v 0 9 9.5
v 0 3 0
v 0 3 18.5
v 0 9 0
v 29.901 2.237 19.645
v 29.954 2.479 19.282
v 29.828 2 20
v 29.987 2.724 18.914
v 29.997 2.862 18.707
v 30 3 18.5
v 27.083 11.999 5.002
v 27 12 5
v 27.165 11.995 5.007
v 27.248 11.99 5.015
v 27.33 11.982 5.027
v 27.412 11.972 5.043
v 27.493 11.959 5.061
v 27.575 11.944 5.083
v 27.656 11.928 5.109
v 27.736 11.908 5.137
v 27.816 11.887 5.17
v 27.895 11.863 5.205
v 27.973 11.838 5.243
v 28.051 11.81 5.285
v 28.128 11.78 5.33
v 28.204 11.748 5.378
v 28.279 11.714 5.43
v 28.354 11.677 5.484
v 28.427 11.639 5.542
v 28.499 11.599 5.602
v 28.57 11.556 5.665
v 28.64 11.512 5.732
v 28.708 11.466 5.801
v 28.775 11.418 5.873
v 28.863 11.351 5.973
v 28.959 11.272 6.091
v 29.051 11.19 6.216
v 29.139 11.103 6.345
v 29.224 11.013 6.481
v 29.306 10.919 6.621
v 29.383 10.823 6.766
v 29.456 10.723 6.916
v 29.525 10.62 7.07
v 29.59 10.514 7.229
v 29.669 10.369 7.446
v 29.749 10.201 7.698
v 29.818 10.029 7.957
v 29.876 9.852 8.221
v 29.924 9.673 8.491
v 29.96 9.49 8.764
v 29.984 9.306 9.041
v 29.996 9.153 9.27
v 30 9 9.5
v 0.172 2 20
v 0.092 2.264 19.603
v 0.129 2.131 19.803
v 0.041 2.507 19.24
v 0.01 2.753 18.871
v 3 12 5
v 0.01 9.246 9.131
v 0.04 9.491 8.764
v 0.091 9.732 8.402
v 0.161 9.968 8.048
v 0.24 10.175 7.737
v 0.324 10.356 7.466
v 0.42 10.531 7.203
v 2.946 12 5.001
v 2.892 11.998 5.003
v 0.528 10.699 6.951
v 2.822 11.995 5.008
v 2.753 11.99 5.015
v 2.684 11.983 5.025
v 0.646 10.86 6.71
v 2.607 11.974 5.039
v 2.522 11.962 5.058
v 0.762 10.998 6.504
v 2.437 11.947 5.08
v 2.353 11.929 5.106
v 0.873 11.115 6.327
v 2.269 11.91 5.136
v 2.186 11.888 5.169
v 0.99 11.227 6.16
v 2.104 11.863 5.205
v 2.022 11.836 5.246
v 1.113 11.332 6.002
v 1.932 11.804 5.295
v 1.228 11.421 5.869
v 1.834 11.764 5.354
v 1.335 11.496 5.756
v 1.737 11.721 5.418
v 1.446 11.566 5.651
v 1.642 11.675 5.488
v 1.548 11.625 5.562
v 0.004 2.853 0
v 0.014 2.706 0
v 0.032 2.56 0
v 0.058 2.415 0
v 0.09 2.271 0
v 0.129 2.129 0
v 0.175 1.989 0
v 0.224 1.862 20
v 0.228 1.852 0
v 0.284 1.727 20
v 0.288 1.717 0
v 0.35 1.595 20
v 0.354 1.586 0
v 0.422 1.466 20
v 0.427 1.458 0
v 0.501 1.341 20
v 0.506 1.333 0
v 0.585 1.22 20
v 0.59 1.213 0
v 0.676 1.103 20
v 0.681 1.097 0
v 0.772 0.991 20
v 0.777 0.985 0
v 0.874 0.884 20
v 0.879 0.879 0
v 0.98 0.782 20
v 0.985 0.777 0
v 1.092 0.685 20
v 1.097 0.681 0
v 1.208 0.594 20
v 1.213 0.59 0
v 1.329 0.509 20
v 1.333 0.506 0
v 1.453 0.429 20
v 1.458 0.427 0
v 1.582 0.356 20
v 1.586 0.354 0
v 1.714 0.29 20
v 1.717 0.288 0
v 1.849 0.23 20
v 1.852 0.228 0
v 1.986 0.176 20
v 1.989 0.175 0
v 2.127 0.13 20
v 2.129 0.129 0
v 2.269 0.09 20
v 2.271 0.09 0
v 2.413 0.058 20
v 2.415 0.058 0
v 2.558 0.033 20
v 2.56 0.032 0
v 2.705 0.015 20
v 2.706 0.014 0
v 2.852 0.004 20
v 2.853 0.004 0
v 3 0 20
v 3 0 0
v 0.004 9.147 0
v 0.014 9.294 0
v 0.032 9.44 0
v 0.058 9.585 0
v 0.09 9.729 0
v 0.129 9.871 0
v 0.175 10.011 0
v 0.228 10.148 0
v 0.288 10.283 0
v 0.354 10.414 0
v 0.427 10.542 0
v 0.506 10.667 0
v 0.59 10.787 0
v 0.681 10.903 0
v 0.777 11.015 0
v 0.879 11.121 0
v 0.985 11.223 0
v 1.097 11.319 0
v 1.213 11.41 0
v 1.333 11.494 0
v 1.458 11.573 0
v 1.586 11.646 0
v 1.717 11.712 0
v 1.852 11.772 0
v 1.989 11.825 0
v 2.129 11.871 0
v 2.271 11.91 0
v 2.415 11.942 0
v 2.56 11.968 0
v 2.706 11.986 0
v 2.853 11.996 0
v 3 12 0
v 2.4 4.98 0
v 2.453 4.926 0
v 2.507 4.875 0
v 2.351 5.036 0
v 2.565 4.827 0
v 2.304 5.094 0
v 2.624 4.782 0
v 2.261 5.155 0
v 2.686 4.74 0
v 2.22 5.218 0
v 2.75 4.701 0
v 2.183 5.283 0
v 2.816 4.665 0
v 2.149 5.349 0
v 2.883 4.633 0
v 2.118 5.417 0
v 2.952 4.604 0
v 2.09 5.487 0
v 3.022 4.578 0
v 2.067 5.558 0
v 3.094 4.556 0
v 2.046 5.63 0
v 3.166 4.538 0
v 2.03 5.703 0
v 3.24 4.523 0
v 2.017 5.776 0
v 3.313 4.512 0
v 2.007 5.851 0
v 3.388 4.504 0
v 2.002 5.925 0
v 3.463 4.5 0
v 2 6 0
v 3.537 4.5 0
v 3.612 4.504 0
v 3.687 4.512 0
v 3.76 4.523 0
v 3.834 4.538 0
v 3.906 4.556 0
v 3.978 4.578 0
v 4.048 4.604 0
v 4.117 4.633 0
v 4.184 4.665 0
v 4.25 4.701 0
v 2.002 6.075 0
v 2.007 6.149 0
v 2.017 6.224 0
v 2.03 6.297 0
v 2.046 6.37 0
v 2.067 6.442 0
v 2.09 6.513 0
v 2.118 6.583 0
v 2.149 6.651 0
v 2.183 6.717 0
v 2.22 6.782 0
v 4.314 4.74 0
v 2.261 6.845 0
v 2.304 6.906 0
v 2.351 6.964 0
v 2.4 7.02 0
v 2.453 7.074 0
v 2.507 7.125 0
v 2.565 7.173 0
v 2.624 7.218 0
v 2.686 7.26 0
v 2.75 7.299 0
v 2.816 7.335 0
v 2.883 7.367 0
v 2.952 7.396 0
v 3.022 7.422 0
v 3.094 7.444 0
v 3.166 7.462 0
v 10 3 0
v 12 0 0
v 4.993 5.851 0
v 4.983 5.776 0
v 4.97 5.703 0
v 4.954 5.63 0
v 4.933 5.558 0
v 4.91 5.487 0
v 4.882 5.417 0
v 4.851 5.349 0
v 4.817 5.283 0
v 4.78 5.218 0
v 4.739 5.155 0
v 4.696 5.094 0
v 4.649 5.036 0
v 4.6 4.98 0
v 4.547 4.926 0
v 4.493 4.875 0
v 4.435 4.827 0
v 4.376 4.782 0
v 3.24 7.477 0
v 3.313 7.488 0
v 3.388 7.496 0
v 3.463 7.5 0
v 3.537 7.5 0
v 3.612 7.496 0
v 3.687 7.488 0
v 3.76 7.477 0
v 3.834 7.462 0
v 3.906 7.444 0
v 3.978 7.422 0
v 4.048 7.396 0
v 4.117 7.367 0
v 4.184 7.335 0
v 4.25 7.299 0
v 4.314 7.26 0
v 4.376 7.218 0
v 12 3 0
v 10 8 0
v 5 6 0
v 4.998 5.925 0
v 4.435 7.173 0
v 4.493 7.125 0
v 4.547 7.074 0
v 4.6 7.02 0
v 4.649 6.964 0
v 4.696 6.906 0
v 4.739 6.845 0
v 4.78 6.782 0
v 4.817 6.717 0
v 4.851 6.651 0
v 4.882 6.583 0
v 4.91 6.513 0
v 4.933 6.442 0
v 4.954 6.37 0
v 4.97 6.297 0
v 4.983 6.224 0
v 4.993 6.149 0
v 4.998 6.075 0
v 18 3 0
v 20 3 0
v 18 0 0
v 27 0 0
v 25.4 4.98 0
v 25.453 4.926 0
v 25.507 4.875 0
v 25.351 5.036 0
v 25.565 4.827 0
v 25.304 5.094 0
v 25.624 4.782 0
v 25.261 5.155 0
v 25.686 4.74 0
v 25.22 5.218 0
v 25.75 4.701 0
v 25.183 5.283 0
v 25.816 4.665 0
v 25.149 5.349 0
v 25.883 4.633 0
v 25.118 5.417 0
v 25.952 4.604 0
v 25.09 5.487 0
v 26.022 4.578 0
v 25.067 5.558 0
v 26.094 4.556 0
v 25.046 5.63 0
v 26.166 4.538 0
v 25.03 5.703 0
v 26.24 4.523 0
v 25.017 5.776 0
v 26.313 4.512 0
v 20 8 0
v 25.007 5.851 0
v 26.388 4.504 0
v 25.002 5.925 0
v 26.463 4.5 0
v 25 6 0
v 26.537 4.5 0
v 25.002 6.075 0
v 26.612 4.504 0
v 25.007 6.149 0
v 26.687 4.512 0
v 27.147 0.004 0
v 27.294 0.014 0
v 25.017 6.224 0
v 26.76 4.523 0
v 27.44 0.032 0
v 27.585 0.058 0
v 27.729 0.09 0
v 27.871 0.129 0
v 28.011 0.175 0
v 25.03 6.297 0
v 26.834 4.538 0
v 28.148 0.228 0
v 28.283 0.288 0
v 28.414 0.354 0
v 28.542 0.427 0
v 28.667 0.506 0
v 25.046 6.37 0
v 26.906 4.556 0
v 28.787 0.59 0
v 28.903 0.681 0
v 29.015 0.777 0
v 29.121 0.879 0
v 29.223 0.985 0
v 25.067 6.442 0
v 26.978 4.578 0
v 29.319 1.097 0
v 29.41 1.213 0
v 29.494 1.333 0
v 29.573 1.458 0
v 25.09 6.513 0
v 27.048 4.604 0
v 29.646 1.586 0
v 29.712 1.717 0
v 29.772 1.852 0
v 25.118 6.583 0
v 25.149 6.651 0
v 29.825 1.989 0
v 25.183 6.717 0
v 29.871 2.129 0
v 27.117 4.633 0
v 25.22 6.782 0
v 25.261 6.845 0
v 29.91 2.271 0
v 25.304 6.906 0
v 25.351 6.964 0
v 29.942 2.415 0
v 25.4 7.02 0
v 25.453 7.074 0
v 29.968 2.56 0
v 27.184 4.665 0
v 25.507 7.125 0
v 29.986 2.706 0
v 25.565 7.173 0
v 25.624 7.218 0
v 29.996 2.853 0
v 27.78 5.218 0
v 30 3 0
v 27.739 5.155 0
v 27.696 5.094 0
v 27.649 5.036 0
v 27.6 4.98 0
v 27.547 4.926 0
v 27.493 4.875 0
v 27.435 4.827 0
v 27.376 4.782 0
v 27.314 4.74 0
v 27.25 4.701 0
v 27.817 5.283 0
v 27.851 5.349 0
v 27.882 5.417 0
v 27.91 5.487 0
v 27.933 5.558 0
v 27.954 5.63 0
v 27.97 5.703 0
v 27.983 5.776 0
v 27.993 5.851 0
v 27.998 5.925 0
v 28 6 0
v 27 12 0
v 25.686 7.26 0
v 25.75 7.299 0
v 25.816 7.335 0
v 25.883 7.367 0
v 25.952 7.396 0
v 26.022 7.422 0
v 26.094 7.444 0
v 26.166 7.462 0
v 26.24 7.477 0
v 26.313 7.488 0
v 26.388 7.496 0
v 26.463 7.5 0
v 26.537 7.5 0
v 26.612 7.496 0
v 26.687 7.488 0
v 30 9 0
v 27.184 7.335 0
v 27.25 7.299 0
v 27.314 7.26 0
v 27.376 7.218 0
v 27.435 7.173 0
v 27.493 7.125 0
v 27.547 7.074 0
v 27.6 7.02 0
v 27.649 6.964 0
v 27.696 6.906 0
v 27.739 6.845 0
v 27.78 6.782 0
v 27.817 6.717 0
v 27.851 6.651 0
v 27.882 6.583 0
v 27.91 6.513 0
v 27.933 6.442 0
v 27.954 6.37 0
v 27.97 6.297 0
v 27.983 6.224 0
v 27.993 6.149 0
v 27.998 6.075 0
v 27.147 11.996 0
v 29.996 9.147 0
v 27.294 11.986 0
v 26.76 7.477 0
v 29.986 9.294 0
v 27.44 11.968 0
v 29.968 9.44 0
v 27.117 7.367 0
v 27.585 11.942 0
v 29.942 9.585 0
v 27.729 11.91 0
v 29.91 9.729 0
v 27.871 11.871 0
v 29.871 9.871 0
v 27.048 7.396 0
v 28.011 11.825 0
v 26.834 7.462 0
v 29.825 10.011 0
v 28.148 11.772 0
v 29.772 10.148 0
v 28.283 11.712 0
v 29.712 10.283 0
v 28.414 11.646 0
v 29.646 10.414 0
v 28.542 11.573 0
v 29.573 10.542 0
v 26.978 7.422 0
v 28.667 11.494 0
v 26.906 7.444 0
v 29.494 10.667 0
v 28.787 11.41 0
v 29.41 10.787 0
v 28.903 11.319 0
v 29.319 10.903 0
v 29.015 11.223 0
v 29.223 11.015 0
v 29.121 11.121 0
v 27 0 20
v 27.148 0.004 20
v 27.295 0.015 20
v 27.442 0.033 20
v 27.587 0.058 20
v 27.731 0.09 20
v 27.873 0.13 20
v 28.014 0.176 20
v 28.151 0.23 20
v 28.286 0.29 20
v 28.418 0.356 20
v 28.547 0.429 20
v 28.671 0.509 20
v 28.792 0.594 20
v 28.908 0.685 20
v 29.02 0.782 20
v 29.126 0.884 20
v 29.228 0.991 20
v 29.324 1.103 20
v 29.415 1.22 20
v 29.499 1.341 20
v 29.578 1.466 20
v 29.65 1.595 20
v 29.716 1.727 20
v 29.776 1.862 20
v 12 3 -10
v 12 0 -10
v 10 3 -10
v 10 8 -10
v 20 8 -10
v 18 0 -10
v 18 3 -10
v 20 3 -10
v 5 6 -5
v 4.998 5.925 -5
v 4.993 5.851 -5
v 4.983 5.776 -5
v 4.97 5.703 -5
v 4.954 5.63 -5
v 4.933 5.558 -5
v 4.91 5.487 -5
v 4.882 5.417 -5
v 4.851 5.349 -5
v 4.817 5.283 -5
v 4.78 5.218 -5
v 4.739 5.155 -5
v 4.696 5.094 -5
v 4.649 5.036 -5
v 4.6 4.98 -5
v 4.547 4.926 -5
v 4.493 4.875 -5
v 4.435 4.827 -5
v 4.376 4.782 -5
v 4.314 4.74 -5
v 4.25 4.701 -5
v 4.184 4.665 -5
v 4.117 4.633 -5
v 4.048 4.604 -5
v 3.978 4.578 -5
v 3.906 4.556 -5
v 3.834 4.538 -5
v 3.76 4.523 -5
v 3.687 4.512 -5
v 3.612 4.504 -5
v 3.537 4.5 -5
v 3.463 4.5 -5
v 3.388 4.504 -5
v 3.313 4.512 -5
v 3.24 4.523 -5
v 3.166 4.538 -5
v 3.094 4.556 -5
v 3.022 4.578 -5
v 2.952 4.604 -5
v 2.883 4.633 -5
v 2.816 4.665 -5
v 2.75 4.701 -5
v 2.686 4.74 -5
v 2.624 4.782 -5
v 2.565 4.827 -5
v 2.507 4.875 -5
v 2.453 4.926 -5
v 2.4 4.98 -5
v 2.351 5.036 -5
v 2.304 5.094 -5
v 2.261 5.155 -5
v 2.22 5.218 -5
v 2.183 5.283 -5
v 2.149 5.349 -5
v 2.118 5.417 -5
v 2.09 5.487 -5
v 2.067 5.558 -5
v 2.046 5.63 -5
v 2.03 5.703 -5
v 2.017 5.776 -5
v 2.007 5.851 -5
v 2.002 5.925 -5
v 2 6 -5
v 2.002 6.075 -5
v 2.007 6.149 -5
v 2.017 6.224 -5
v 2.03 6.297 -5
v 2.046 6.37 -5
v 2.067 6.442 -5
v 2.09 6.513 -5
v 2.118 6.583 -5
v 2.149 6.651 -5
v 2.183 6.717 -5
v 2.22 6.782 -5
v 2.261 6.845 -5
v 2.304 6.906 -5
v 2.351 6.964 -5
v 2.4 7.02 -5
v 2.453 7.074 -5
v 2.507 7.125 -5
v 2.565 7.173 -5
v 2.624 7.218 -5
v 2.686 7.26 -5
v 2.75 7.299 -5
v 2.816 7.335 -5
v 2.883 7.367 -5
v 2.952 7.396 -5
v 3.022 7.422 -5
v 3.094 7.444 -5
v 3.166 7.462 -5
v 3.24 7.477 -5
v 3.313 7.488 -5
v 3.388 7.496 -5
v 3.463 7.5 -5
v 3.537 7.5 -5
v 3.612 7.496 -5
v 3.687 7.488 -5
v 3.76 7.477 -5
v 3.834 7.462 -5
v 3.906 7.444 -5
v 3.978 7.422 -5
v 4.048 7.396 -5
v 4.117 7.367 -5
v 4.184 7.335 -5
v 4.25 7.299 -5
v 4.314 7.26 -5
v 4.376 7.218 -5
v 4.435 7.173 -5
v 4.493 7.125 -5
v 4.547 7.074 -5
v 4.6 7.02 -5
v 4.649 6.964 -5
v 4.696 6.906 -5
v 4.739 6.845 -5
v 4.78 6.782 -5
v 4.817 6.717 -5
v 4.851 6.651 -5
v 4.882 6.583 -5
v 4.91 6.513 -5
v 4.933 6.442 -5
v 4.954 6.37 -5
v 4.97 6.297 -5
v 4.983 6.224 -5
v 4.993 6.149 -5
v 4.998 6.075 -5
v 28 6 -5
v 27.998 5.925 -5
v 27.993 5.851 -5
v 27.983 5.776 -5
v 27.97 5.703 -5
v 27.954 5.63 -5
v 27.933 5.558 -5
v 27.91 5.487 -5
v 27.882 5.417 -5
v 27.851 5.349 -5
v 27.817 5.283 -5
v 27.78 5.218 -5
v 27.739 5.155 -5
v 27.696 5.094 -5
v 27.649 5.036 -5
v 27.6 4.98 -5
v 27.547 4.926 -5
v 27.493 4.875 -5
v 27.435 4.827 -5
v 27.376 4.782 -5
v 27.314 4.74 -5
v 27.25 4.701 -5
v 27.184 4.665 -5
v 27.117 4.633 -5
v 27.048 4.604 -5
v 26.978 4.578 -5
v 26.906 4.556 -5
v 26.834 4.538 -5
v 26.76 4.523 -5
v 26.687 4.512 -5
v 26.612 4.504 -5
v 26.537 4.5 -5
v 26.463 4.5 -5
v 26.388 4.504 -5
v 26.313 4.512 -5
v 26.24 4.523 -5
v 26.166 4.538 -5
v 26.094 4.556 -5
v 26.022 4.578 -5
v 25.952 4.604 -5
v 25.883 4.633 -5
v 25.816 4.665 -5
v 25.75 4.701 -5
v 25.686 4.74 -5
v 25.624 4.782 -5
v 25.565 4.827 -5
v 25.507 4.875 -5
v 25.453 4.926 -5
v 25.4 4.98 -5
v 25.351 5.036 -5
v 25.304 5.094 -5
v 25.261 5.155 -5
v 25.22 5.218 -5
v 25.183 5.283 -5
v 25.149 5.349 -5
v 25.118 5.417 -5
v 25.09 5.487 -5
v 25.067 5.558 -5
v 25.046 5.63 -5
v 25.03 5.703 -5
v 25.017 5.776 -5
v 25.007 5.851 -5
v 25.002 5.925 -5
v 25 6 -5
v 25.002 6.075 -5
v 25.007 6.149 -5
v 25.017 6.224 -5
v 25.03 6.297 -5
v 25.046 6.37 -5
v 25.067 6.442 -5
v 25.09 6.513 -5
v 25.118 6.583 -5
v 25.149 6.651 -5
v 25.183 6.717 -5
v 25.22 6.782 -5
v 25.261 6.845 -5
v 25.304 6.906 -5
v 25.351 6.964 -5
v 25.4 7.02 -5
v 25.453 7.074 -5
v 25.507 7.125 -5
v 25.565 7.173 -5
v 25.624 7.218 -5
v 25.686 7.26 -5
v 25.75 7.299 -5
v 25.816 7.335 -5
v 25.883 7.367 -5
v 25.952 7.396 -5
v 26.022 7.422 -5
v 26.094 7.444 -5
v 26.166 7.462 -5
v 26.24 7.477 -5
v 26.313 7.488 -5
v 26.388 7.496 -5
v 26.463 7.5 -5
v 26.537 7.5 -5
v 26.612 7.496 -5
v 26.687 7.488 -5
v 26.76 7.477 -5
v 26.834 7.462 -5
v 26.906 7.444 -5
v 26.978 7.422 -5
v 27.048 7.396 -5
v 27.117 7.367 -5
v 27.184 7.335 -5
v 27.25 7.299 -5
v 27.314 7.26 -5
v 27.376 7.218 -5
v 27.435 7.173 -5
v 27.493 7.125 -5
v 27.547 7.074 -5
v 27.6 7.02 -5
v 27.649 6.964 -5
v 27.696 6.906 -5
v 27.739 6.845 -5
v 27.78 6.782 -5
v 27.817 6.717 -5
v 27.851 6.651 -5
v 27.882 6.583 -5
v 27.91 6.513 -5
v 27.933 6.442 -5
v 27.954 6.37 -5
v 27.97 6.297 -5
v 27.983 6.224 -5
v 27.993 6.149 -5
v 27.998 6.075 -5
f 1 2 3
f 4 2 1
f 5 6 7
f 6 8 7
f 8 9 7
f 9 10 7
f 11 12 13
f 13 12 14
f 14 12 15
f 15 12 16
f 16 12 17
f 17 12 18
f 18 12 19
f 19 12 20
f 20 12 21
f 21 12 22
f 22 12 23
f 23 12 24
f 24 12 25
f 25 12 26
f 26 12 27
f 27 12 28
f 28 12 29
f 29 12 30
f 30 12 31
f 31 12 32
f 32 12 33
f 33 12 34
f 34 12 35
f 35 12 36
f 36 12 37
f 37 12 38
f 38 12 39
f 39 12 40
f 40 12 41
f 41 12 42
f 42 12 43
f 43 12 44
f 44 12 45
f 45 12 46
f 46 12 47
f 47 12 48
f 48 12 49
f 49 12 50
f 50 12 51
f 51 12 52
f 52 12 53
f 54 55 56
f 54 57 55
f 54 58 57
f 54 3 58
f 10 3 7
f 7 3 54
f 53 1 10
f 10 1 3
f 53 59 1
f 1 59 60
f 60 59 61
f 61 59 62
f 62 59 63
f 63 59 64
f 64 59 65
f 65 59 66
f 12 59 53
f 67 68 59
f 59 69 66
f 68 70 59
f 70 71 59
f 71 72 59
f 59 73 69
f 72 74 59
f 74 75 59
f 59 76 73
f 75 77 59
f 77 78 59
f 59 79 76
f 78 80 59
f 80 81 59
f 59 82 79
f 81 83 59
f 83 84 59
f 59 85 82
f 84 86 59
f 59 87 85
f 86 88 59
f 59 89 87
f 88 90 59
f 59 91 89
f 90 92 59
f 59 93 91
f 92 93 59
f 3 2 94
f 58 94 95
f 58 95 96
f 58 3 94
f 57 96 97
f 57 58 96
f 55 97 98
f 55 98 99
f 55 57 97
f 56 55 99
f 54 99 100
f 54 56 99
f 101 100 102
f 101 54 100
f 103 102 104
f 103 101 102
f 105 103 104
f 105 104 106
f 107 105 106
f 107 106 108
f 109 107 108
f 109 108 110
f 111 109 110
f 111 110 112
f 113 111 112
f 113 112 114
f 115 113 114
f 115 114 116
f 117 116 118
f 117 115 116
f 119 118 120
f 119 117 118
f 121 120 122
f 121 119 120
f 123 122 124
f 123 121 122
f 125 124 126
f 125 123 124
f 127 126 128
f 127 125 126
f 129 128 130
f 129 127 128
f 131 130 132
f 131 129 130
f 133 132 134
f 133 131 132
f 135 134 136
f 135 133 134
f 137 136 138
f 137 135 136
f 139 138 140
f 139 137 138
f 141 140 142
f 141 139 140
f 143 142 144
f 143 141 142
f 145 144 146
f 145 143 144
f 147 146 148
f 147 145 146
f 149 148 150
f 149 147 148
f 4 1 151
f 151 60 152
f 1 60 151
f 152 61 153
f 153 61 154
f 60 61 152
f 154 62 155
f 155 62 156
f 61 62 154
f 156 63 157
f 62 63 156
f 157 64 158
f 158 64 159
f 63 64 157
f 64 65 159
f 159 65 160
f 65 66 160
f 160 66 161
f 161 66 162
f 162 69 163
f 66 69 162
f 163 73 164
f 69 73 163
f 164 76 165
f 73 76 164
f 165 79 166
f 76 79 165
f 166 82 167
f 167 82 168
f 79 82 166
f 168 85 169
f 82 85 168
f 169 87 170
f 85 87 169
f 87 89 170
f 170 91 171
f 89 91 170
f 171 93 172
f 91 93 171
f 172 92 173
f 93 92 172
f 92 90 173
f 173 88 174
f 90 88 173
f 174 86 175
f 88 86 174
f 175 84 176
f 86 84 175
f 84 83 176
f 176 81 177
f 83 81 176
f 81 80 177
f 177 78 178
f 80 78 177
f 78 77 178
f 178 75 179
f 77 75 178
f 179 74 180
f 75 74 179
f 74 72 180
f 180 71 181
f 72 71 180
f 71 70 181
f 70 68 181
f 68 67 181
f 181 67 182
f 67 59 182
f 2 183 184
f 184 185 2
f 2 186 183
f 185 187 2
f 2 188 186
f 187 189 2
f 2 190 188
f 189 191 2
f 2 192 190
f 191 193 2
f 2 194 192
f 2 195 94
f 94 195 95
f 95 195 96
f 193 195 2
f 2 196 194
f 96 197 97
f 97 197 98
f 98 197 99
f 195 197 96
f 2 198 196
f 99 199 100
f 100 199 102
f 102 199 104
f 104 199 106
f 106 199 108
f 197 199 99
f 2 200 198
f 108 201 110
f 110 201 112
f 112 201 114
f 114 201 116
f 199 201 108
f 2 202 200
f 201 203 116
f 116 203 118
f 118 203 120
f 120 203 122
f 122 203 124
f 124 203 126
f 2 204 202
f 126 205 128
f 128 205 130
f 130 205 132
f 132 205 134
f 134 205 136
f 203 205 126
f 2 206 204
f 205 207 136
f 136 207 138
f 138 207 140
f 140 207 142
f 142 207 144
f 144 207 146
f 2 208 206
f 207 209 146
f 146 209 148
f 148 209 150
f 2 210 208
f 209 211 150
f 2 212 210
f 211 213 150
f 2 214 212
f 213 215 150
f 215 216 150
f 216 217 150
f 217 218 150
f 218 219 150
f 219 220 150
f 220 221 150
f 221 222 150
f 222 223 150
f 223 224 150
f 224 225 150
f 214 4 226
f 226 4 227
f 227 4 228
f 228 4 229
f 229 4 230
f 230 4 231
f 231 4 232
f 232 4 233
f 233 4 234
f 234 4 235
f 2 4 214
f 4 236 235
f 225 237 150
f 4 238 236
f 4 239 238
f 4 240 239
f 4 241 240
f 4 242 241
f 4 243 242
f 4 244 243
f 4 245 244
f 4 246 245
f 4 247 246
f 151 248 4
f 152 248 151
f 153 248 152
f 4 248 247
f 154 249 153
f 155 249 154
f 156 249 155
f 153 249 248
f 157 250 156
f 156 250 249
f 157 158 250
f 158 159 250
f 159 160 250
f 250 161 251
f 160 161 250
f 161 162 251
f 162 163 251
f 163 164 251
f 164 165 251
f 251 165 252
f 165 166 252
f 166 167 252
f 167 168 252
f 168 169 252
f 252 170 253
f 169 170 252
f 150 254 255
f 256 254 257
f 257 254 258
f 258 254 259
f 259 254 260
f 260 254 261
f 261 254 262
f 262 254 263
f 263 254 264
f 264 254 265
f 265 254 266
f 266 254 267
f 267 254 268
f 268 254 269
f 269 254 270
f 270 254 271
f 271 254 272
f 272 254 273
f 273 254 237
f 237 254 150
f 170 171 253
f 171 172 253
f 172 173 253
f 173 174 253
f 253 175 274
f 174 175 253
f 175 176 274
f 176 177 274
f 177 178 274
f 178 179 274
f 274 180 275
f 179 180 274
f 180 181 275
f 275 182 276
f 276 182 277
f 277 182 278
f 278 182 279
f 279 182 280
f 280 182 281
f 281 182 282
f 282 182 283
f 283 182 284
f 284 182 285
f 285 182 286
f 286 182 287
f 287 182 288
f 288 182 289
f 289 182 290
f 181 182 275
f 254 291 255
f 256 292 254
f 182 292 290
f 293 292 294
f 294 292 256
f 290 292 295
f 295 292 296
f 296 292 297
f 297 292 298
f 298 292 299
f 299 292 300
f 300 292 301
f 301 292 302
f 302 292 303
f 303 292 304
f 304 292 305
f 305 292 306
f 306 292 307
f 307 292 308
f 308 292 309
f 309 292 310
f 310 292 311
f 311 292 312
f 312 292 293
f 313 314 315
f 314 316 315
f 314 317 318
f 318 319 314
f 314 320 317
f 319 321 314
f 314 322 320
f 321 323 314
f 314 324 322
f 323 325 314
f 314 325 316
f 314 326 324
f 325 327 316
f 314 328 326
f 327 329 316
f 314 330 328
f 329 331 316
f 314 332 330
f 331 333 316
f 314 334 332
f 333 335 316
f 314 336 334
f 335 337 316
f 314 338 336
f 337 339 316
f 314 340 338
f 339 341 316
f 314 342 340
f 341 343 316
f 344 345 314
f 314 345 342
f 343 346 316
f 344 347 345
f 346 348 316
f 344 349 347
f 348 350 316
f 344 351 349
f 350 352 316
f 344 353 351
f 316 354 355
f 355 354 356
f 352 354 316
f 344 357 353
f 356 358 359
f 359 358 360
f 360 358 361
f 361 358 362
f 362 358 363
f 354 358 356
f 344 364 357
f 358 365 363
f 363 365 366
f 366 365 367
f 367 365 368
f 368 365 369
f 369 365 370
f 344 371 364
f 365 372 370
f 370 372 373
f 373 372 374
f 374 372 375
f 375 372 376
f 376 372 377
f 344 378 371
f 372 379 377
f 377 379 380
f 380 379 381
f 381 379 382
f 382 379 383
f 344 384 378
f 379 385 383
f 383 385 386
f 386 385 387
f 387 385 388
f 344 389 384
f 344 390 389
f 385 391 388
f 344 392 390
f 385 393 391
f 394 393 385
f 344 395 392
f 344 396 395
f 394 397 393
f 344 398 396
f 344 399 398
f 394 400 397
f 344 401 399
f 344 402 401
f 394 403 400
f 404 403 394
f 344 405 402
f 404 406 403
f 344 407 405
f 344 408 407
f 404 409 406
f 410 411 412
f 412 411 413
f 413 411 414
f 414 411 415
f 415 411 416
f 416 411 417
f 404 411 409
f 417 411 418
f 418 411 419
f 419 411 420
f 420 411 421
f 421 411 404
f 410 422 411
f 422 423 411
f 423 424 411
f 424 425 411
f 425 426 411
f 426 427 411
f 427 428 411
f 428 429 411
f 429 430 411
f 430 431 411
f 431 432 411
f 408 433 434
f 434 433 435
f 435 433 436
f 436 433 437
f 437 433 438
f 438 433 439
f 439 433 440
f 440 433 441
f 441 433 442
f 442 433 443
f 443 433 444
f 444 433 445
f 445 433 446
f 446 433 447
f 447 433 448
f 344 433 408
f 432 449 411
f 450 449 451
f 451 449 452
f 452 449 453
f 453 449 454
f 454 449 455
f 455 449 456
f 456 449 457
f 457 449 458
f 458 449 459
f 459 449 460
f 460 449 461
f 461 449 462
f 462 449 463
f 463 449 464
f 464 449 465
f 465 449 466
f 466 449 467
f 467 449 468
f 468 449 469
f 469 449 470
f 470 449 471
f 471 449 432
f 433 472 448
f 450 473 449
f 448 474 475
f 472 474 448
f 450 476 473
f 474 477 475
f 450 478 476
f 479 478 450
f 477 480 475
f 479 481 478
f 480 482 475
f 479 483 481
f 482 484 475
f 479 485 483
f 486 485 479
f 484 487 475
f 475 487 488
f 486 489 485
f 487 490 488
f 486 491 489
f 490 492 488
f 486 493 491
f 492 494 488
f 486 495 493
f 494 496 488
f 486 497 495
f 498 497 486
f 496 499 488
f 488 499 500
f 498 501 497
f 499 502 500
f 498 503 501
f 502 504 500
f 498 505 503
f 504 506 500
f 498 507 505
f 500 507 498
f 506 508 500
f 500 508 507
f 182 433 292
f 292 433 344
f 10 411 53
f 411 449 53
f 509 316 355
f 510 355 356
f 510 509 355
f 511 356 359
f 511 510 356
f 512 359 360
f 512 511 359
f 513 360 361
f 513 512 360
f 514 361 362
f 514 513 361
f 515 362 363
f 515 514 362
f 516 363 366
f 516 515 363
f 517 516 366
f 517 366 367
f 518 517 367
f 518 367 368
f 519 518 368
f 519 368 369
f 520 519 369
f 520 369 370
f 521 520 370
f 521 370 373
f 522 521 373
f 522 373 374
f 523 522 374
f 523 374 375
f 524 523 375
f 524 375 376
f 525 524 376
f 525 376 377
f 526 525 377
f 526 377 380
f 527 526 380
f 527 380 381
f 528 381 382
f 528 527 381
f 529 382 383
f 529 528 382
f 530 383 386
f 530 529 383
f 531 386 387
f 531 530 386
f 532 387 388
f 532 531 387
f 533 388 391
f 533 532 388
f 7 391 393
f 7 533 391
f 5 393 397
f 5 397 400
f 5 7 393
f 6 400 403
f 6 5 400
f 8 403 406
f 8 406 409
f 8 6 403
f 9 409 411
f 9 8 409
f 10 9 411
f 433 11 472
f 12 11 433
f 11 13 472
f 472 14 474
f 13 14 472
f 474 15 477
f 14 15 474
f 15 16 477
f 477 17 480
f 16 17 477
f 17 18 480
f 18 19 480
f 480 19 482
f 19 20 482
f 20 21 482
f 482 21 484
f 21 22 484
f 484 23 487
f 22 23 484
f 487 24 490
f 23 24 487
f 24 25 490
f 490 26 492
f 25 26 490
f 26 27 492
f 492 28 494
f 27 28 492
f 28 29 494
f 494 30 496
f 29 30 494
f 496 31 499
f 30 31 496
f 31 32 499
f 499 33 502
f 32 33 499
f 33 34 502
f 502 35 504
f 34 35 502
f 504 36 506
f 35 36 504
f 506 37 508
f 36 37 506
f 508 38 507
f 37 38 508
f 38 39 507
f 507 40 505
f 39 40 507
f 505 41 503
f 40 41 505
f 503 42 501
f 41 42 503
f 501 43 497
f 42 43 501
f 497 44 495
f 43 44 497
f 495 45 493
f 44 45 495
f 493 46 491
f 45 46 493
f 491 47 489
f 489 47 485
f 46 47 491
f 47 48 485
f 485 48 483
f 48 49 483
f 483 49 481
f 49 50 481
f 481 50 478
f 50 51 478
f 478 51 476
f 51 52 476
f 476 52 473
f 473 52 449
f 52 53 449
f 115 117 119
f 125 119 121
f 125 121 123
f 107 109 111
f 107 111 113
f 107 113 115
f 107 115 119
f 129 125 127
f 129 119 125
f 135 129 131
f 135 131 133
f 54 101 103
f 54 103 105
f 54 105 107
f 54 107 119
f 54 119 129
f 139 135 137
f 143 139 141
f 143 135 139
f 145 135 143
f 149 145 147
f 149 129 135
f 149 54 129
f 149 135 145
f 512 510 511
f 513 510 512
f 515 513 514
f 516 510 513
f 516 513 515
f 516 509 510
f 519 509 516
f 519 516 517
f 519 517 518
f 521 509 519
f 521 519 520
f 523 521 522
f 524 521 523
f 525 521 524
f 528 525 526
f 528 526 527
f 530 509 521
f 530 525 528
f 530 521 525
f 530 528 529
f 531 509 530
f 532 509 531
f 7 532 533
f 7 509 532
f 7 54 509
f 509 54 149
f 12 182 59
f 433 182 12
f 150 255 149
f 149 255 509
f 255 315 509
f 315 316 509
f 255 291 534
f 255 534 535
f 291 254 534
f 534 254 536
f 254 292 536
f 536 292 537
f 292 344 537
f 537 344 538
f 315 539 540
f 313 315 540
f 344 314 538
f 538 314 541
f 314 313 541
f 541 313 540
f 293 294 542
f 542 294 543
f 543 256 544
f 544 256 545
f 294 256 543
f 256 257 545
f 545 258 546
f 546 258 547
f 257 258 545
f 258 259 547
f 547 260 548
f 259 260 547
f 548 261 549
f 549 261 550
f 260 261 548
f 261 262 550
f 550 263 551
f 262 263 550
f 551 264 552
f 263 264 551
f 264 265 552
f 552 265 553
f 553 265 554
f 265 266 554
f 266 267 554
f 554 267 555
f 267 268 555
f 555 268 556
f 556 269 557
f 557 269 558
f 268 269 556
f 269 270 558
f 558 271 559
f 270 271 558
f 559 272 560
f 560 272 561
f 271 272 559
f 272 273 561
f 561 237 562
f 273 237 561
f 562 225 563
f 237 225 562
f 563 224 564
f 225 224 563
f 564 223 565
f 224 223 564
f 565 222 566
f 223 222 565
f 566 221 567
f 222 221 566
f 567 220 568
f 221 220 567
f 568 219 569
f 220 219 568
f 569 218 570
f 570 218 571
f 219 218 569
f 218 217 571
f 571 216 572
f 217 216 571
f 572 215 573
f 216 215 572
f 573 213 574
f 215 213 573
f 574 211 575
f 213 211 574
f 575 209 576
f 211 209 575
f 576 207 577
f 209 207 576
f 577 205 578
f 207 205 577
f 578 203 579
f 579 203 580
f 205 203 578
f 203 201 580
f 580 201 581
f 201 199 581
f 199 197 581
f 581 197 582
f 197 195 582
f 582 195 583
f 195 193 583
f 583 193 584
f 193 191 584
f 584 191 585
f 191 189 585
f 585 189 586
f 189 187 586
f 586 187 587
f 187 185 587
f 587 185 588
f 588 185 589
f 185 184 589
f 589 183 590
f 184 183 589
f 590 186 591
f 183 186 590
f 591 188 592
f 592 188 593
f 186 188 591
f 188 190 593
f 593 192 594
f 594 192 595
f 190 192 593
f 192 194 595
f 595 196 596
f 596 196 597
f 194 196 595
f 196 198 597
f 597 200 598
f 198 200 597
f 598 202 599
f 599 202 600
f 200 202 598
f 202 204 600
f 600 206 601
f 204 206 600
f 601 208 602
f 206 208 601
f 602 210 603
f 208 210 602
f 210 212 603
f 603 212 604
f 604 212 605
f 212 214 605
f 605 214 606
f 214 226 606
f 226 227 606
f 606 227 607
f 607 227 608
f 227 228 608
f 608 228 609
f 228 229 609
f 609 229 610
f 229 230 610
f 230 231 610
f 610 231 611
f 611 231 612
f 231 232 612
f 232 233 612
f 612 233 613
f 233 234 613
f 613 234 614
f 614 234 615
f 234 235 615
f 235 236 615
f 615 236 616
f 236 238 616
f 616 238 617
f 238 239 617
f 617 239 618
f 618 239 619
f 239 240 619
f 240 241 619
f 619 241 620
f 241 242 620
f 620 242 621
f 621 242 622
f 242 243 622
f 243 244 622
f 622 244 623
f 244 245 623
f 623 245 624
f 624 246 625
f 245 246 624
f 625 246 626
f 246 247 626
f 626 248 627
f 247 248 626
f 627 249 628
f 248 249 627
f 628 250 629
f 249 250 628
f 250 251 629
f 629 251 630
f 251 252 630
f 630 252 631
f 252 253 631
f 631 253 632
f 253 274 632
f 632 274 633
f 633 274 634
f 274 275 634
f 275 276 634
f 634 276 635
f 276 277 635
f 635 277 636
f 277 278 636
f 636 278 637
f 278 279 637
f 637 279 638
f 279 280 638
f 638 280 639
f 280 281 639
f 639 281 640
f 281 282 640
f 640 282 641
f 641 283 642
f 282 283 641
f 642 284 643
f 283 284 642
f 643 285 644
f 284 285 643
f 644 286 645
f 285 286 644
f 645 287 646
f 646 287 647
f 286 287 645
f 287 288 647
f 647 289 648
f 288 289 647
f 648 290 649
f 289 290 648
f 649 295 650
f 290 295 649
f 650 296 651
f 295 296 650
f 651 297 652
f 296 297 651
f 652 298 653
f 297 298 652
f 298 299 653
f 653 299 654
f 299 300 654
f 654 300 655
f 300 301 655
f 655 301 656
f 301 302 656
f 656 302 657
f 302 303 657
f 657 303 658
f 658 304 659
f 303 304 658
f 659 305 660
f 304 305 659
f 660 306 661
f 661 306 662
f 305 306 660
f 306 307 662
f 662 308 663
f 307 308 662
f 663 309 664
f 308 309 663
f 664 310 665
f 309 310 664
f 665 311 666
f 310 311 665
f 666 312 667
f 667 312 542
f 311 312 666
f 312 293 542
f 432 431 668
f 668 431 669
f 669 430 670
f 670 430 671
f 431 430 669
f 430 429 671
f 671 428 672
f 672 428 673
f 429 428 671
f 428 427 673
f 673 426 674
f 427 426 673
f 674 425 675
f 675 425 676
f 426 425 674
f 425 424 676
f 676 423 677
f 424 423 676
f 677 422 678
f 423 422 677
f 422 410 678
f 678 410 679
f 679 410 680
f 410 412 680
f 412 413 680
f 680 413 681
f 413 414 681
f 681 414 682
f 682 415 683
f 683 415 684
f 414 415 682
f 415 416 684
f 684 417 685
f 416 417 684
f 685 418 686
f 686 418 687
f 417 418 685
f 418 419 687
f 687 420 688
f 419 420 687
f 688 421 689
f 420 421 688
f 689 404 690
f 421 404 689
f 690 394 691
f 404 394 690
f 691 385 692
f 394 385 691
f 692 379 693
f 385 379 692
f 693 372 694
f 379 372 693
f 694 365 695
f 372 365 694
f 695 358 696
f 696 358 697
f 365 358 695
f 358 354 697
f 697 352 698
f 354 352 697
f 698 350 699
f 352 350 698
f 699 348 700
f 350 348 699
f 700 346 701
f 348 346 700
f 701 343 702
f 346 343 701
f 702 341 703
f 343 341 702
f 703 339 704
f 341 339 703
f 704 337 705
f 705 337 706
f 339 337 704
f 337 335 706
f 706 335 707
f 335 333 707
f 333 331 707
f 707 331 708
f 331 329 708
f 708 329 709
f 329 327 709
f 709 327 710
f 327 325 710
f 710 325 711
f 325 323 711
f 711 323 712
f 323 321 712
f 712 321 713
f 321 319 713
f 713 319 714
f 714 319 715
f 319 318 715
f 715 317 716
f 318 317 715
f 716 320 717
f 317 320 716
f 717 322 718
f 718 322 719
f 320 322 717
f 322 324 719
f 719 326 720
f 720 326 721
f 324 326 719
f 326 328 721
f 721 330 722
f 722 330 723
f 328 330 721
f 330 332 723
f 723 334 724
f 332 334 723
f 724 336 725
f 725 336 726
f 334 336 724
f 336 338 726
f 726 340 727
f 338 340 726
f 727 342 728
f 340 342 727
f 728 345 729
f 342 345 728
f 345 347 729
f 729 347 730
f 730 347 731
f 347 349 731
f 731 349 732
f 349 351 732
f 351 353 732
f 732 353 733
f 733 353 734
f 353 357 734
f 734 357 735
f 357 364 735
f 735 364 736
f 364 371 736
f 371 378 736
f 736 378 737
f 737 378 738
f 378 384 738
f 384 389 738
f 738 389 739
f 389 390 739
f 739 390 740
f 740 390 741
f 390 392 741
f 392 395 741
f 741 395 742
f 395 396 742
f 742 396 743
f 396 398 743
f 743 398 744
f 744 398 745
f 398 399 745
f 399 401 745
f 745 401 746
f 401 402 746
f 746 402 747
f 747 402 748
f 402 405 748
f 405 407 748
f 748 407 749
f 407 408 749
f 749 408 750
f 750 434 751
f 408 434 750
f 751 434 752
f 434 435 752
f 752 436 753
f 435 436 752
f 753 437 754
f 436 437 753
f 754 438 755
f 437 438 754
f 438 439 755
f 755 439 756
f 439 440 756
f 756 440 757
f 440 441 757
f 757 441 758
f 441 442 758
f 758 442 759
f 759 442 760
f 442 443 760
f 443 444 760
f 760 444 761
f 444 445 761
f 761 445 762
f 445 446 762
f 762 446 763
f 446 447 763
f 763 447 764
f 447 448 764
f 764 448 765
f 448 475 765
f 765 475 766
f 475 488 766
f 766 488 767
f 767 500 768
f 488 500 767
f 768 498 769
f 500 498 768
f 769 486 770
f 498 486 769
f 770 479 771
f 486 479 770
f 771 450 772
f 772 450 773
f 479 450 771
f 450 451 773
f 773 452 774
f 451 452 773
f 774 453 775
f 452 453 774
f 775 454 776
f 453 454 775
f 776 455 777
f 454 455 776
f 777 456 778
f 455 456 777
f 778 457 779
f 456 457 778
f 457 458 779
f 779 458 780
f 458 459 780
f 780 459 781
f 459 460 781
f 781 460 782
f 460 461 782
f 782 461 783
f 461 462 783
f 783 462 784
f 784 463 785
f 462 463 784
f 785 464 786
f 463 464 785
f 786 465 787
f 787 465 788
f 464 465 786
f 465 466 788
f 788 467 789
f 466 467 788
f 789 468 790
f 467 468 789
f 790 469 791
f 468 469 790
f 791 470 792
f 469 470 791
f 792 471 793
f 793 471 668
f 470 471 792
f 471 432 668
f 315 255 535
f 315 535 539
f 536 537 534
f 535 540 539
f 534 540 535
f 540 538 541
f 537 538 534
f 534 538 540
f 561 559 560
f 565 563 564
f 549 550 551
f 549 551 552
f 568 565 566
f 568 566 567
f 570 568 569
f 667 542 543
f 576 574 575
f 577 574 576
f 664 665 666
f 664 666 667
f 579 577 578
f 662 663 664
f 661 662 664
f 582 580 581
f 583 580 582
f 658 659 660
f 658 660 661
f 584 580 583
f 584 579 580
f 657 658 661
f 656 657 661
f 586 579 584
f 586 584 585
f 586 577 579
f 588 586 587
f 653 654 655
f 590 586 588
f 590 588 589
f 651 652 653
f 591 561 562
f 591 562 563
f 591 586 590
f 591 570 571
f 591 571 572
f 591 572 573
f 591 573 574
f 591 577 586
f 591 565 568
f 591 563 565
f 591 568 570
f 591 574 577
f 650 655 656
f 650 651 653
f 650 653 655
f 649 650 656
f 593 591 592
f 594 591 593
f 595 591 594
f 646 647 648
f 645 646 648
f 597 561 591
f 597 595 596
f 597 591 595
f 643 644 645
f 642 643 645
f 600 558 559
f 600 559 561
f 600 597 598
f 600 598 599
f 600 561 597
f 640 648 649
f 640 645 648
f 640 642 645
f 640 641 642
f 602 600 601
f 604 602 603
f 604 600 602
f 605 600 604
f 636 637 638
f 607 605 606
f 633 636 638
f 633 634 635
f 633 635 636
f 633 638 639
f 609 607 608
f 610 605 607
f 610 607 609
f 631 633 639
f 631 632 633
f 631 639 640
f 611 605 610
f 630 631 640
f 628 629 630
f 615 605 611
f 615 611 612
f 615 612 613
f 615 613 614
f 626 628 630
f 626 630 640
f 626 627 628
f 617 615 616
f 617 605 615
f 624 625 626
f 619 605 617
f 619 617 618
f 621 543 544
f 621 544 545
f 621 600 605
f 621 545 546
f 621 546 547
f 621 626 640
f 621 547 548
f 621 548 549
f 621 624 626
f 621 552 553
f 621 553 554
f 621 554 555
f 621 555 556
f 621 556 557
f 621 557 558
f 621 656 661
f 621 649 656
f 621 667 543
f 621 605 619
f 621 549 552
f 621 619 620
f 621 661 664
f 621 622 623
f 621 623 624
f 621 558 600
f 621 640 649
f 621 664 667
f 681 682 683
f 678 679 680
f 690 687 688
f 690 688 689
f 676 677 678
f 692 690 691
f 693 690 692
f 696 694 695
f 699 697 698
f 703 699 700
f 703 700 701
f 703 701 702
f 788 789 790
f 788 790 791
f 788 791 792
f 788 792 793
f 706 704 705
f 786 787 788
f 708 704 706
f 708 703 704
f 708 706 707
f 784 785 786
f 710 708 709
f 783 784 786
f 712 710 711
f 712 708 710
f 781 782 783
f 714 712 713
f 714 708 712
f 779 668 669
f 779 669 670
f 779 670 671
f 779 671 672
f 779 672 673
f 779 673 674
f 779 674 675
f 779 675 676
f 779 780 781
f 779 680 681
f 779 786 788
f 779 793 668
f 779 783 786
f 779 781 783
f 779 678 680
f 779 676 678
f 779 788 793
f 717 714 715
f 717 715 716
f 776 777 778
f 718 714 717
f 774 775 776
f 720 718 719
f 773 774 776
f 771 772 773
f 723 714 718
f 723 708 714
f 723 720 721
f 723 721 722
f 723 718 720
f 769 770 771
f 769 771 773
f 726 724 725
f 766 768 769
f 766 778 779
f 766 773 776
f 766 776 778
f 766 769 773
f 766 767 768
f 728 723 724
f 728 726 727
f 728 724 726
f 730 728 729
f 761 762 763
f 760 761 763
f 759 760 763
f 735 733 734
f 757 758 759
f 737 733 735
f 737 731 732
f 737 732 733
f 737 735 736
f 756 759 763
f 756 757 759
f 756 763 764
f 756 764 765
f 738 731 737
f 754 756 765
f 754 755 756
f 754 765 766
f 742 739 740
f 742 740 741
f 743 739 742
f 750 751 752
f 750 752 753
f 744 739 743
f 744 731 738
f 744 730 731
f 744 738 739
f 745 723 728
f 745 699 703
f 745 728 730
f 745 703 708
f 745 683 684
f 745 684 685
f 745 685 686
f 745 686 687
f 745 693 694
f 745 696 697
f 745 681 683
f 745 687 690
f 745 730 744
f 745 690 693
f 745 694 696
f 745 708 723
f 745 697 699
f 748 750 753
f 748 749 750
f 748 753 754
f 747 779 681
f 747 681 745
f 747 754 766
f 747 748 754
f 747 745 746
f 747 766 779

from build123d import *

# Parameters (mm, degrees)
SKETCH_W      = 30
SKETCH_H      = 12
PAD_DEPTH     = 20
PAD001_DEPTH  = 10
SKETCH002_R   = 1.5
PAD002_DEPTH  = 5
CHAMFER_SIZE2 = 15
CHAMFER_SIZE  = 10
FILLET_R      = 3


with BuildPart() as part:
    # Sketch → Pad (new body)
    with BuildSketch(Plane.XY):
        with Locations((15, 6)):
            Rectangle(SKETCH_W, SKETCH_H)
    extrude(amount=PAD_DEPTH)

    # Sketch001 (on Face5 of Pad) → Pad001 (join)
    with BuildSketch(Plane(origin=(0, 0, 0), x_dir=(1, 0, 0), z_dir=(0, 0, -1))):
        Polygon((12, 0), (18, 0), (18, -3), (20, -3), (20, -8), (10, -8), (10, -3), (12, -3), align=None)
    extrude(amount=PAD001_DEPTH)

    # Sketch002 (on Face4 of Pad001) → Pad002 (join)
    with BuildSketch(Plane(origin=(0, 0, 0), x_dir=(1, 0, 0), z_dir=(0, 0, -1))):
        with Locations((3.5, -6)):
            Circle(SKETCH002_R)
        with Locations((26.5, -6)):
            Circle(SKETCH002_R)
    extrude(amount=PAD002_DEPTH)

    # Chamfer
    chamfer_edges = [part.edges().sort_by_distance(p)[0] for p in [
        (15, 12, 20),
    ]]
    chamfer_side = part.faces().sort_by_distance((15, 6, 20))[0]
    chamfer(chamfer_edges, length=CHAMFER_SIZE, length2=CHAMFER_SIZE2, reference=chamfer_side)

    # Fillet
    fillet_edges = [part.edges().sort_by_distance(p)[0] for p in [
        (0, 12, 2.5),
        (0, 0, 10),
        (30, 12, 2.5),
        (30, 0, 10),
    ]]
    fillet(fillet_edges, radius=FILLET_R)


solid = part.part
